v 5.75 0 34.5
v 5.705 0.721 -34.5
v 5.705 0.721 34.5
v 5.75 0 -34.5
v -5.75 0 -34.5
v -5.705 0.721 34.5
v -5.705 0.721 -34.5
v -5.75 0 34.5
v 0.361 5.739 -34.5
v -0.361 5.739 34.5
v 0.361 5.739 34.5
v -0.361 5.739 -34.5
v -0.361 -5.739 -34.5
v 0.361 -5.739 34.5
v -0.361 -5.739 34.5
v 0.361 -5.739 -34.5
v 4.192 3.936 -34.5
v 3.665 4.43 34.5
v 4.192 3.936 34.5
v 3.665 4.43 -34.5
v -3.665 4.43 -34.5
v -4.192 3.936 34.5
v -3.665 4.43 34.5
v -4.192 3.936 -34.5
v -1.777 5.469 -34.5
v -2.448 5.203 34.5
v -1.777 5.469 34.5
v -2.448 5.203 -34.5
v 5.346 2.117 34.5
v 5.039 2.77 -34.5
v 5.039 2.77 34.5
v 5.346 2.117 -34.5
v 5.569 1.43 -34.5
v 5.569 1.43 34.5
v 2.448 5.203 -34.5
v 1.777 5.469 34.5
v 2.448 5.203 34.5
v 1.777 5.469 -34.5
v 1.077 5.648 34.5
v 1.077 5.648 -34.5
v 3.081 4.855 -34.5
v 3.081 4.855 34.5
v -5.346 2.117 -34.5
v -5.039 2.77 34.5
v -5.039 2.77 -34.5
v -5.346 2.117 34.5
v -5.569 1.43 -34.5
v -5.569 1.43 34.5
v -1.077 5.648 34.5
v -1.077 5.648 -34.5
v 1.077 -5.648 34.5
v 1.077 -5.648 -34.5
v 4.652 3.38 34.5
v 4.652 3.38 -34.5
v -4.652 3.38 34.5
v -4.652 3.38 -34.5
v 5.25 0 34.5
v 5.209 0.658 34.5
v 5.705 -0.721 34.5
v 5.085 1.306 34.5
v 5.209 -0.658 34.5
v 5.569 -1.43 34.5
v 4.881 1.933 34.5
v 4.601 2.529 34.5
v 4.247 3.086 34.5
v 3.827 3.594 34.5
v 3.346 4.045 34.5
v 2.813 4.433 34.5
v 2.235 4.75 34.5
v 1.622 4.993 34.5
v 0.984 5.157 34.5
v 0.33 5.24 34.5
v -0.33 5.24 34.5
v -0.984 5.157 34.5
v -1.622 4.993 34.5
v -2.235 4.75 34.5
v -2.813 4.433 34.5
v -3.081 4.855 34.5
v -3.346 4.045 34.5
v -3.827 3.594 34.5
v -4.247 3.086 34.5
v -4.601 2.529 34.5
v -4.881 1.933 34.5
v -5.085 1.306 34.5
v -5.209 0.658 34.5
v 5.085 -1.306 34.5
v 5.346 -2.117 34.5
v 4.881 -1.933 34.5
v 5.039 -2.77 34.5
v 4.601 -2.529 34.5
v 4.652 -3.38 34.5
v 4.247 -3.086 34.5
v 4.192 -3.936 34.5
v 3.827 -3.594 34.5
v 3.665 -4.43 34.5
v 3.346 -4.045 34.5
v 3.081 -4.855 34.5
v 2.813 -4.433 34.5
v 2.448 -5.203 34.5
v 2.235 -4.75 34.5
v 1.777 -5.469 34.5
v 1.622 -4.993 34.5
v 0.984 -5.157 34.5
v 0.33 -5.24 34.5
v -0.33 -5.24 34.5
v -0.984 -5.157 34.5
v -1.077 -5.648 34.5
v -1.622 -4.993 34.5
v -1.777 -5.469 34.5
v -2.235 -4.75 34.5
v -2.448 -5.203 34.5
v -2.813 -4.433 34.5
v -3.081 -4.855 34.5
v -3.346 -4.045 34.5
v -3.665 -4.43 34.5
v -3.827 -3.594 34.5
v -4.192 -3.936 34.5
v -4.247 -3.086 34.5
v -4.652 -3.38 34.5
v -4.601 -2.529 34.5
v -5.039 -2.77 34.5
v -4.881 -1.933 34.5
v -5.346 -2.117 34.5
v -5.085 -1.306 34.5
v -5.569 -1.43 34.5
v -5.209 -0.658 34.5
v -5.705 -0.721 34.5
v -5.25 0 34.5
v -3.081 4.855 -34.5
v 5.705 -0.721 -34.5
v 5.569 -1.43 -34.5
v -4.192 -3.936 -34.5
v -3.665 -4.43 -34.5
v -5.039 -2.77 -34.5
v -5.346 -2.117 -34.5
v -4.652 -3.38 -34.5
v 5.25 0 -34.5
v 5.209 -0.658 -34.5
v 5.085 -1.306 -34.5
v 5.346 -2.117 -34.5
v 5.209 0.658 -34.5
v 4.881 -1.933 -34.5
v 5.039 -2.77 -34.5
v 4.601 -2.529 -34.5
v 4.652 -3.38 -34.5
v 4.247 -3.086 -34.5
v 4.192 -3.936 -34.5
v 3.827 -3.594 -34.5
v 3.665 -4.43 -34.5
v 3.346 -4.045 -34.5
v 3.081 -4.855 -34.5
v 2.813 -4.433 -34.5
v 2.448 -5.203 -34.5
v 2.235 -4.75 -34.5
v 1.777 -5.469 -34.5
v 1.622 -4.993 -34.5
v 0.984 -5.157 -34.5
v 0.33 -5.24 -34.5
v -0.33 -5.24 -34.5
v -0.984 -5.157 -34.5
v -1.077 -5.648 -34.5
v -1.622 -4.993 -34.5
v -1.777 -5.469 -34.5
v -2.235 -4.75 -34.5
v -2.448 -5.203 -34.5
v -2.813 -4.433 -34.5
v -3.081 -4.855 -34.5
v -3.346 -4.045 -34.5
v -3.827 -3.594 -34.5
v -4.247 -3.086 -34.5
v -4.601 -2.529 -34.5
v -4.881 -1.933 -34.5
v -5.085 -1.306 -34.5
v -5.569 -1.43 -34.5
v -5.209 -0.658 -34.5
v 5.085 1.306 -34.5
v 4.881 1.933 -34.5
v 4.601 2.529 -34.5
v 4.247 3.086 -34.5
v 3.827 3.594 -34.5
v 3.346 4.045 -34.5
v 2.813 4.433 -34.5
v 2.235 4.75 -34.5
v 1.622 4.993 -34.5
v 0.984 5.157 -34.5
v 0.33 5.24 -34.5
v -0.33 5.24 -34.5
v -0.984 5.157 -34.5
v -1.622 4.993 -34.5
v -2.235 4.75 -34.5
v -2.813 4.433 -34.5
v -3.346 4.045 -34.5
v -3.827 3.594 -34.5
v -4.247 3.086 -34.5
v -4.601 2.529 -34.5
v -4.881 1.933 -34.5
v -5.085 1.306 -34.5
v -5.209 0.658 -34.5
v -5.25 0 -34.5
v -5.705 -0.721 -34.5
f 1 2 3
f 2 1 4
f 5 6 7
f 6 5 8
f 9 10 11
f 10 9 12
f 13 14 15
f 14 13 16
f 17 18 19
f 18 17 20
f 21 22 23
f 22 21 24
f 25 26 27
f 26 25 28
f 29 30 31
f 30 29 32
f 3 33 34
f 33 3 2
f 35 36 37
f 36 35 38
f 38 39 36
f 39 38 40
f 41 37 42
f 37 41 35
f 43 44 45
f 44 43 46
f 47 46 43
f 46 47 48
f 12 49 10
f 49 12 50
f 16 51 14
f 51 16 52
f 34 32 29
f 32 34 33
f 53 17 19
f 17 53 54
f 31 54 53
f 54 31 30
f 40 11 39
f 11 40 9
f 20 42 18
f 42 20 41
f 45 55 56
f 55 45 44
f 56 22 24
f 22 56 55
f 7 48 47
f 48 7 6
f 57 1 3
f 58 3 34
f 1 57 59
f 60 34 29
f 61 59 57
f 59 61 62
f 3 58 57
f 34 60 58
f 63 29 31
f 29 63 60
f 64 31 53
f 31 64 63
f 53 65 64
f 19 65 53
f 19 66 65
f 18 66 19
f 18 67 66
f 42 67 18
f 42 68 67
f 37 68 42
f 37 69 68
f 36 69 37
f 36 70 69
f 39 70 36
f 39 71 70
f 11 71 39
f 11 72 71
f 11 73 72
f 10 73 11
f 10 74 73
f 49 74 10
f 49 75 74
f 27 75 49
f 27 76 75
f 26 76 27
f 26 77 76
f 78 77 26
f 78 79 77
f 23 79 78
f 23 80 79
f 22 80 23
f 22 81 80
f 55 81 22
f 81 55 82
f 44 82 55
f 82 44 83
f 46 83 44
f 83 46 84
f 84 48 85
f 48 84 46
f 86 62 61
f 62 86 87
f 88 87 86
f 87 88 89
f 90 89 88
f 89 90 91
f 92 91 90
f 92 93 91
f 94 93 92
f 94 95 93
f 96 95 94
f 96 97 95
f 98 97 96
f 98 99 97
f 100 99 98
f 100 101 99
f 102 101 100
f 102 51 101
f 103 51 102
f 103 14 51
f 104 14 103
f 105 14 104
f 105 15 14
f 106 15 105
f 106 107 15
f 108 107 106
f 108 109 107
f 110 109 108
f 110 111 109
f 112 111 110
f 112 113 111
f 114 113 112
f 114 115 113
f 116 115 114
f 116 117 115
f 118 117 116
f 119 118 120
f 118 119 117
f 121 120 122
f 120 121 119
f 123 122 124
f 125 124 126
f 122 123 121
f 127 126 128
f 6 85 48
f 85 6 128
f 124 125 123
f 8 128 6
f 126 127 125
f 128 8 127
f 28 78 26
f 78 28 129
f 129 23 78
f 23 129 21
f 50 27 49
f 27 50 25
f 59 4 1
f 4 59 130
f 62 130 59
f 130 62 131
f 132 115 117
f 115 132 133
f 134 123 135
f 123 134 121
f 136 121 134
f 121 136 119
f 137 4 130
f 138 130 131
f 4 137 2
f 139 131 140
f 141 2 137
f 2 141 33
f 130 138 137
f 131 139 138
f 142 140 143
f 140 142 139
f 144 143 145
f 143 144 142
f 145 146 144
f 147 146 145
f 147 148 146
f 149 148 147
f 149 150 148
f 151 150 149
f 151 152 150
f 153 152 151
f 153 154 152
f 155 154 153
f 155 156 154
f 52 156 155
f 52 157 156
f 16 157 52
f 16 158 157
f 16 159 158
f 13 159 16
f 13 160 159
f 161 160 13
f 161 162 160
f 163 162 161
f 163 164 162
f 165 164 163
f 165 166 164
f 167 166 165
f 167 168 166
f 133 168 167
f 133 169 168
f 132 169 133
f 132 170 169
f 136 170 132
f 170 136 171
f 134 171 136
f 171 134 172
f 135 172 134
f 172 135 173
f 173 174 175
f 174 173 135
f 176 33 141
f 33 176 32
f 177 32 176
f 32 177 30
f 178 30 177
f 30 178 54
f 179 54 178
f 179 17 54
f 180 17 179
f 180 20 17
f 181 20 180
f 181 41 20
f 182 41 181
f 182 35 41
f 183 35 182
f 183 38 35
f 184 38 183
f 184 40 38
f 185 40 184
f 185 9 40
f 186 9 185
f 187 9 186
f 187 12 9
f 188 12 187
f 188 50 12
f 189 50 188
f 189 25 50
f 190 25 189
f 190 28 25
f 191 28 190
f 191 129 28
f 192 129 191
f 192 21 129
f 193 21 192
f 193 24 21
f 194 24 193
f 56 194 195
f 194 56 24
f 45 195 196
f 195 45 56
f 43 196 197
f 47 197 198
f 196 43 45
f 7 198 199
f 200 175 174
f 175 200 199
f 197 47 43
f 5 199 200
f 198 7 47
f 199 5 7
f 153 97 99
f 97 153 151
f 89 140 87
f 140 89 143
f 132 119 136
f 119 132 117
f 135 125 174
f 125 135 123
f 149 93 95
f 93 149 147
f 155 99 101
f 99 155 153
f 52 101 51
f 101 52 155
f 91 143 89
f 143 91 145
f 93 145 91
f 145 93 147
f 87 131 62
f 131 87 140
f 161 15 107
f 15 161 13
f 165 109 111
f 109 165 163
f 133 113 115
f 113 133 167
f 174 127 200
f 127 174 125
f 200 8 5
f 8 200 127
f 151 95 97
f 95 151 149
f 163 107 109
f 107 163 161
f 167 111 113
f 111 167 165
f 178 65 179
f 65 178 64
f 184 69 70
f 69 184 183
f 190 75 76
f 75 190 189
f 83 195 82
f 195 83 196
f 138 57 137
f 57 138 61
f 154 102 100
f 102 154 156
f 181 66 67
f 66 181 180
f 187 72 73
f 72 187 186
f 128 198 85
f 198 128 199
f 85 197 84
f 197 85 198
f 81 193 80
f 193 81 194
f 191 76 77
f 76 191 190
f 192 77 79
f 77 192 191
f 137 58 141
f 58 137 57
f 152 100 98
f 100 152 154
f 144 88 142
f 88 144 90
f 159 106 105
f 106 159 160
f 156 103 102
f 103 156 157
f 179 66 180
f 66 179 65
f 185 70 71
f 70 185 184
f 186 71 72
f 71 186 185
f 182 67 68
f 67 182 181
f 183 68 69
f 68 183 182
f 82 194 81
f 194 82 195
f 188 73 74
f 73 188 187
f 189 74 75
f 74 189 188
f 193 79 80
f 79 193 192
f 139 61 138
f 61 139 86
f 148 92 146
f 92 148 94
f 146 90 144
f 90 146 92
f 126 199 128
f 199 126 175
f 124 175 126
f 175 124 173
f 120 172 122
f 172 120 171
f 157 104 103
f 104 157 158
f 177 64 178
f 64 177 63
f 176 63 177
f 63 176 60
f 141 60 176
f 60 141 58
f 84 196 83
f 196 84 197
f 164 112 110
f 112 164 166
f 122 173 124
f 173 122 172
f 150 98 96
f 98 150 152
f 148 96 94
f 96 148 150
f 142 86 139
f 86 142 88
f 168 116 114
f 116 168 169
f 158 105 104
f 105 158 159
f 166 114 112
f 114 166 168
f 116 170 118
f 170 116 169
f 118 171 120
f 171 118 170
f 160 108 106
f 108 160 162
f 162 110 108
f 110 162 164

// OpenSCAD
$fn = 50;


difference() {
	union() {
		translate(v = [0, 0, -34.5000000000]) {
			cylinder(h = 69, r = 5.7500000000);
		}
	}
	union() {
		translate(v = [0, 0, -100.0000000000]) {
			cylinder(h = 200, r = 5.2500000000);
		}
	}
}
